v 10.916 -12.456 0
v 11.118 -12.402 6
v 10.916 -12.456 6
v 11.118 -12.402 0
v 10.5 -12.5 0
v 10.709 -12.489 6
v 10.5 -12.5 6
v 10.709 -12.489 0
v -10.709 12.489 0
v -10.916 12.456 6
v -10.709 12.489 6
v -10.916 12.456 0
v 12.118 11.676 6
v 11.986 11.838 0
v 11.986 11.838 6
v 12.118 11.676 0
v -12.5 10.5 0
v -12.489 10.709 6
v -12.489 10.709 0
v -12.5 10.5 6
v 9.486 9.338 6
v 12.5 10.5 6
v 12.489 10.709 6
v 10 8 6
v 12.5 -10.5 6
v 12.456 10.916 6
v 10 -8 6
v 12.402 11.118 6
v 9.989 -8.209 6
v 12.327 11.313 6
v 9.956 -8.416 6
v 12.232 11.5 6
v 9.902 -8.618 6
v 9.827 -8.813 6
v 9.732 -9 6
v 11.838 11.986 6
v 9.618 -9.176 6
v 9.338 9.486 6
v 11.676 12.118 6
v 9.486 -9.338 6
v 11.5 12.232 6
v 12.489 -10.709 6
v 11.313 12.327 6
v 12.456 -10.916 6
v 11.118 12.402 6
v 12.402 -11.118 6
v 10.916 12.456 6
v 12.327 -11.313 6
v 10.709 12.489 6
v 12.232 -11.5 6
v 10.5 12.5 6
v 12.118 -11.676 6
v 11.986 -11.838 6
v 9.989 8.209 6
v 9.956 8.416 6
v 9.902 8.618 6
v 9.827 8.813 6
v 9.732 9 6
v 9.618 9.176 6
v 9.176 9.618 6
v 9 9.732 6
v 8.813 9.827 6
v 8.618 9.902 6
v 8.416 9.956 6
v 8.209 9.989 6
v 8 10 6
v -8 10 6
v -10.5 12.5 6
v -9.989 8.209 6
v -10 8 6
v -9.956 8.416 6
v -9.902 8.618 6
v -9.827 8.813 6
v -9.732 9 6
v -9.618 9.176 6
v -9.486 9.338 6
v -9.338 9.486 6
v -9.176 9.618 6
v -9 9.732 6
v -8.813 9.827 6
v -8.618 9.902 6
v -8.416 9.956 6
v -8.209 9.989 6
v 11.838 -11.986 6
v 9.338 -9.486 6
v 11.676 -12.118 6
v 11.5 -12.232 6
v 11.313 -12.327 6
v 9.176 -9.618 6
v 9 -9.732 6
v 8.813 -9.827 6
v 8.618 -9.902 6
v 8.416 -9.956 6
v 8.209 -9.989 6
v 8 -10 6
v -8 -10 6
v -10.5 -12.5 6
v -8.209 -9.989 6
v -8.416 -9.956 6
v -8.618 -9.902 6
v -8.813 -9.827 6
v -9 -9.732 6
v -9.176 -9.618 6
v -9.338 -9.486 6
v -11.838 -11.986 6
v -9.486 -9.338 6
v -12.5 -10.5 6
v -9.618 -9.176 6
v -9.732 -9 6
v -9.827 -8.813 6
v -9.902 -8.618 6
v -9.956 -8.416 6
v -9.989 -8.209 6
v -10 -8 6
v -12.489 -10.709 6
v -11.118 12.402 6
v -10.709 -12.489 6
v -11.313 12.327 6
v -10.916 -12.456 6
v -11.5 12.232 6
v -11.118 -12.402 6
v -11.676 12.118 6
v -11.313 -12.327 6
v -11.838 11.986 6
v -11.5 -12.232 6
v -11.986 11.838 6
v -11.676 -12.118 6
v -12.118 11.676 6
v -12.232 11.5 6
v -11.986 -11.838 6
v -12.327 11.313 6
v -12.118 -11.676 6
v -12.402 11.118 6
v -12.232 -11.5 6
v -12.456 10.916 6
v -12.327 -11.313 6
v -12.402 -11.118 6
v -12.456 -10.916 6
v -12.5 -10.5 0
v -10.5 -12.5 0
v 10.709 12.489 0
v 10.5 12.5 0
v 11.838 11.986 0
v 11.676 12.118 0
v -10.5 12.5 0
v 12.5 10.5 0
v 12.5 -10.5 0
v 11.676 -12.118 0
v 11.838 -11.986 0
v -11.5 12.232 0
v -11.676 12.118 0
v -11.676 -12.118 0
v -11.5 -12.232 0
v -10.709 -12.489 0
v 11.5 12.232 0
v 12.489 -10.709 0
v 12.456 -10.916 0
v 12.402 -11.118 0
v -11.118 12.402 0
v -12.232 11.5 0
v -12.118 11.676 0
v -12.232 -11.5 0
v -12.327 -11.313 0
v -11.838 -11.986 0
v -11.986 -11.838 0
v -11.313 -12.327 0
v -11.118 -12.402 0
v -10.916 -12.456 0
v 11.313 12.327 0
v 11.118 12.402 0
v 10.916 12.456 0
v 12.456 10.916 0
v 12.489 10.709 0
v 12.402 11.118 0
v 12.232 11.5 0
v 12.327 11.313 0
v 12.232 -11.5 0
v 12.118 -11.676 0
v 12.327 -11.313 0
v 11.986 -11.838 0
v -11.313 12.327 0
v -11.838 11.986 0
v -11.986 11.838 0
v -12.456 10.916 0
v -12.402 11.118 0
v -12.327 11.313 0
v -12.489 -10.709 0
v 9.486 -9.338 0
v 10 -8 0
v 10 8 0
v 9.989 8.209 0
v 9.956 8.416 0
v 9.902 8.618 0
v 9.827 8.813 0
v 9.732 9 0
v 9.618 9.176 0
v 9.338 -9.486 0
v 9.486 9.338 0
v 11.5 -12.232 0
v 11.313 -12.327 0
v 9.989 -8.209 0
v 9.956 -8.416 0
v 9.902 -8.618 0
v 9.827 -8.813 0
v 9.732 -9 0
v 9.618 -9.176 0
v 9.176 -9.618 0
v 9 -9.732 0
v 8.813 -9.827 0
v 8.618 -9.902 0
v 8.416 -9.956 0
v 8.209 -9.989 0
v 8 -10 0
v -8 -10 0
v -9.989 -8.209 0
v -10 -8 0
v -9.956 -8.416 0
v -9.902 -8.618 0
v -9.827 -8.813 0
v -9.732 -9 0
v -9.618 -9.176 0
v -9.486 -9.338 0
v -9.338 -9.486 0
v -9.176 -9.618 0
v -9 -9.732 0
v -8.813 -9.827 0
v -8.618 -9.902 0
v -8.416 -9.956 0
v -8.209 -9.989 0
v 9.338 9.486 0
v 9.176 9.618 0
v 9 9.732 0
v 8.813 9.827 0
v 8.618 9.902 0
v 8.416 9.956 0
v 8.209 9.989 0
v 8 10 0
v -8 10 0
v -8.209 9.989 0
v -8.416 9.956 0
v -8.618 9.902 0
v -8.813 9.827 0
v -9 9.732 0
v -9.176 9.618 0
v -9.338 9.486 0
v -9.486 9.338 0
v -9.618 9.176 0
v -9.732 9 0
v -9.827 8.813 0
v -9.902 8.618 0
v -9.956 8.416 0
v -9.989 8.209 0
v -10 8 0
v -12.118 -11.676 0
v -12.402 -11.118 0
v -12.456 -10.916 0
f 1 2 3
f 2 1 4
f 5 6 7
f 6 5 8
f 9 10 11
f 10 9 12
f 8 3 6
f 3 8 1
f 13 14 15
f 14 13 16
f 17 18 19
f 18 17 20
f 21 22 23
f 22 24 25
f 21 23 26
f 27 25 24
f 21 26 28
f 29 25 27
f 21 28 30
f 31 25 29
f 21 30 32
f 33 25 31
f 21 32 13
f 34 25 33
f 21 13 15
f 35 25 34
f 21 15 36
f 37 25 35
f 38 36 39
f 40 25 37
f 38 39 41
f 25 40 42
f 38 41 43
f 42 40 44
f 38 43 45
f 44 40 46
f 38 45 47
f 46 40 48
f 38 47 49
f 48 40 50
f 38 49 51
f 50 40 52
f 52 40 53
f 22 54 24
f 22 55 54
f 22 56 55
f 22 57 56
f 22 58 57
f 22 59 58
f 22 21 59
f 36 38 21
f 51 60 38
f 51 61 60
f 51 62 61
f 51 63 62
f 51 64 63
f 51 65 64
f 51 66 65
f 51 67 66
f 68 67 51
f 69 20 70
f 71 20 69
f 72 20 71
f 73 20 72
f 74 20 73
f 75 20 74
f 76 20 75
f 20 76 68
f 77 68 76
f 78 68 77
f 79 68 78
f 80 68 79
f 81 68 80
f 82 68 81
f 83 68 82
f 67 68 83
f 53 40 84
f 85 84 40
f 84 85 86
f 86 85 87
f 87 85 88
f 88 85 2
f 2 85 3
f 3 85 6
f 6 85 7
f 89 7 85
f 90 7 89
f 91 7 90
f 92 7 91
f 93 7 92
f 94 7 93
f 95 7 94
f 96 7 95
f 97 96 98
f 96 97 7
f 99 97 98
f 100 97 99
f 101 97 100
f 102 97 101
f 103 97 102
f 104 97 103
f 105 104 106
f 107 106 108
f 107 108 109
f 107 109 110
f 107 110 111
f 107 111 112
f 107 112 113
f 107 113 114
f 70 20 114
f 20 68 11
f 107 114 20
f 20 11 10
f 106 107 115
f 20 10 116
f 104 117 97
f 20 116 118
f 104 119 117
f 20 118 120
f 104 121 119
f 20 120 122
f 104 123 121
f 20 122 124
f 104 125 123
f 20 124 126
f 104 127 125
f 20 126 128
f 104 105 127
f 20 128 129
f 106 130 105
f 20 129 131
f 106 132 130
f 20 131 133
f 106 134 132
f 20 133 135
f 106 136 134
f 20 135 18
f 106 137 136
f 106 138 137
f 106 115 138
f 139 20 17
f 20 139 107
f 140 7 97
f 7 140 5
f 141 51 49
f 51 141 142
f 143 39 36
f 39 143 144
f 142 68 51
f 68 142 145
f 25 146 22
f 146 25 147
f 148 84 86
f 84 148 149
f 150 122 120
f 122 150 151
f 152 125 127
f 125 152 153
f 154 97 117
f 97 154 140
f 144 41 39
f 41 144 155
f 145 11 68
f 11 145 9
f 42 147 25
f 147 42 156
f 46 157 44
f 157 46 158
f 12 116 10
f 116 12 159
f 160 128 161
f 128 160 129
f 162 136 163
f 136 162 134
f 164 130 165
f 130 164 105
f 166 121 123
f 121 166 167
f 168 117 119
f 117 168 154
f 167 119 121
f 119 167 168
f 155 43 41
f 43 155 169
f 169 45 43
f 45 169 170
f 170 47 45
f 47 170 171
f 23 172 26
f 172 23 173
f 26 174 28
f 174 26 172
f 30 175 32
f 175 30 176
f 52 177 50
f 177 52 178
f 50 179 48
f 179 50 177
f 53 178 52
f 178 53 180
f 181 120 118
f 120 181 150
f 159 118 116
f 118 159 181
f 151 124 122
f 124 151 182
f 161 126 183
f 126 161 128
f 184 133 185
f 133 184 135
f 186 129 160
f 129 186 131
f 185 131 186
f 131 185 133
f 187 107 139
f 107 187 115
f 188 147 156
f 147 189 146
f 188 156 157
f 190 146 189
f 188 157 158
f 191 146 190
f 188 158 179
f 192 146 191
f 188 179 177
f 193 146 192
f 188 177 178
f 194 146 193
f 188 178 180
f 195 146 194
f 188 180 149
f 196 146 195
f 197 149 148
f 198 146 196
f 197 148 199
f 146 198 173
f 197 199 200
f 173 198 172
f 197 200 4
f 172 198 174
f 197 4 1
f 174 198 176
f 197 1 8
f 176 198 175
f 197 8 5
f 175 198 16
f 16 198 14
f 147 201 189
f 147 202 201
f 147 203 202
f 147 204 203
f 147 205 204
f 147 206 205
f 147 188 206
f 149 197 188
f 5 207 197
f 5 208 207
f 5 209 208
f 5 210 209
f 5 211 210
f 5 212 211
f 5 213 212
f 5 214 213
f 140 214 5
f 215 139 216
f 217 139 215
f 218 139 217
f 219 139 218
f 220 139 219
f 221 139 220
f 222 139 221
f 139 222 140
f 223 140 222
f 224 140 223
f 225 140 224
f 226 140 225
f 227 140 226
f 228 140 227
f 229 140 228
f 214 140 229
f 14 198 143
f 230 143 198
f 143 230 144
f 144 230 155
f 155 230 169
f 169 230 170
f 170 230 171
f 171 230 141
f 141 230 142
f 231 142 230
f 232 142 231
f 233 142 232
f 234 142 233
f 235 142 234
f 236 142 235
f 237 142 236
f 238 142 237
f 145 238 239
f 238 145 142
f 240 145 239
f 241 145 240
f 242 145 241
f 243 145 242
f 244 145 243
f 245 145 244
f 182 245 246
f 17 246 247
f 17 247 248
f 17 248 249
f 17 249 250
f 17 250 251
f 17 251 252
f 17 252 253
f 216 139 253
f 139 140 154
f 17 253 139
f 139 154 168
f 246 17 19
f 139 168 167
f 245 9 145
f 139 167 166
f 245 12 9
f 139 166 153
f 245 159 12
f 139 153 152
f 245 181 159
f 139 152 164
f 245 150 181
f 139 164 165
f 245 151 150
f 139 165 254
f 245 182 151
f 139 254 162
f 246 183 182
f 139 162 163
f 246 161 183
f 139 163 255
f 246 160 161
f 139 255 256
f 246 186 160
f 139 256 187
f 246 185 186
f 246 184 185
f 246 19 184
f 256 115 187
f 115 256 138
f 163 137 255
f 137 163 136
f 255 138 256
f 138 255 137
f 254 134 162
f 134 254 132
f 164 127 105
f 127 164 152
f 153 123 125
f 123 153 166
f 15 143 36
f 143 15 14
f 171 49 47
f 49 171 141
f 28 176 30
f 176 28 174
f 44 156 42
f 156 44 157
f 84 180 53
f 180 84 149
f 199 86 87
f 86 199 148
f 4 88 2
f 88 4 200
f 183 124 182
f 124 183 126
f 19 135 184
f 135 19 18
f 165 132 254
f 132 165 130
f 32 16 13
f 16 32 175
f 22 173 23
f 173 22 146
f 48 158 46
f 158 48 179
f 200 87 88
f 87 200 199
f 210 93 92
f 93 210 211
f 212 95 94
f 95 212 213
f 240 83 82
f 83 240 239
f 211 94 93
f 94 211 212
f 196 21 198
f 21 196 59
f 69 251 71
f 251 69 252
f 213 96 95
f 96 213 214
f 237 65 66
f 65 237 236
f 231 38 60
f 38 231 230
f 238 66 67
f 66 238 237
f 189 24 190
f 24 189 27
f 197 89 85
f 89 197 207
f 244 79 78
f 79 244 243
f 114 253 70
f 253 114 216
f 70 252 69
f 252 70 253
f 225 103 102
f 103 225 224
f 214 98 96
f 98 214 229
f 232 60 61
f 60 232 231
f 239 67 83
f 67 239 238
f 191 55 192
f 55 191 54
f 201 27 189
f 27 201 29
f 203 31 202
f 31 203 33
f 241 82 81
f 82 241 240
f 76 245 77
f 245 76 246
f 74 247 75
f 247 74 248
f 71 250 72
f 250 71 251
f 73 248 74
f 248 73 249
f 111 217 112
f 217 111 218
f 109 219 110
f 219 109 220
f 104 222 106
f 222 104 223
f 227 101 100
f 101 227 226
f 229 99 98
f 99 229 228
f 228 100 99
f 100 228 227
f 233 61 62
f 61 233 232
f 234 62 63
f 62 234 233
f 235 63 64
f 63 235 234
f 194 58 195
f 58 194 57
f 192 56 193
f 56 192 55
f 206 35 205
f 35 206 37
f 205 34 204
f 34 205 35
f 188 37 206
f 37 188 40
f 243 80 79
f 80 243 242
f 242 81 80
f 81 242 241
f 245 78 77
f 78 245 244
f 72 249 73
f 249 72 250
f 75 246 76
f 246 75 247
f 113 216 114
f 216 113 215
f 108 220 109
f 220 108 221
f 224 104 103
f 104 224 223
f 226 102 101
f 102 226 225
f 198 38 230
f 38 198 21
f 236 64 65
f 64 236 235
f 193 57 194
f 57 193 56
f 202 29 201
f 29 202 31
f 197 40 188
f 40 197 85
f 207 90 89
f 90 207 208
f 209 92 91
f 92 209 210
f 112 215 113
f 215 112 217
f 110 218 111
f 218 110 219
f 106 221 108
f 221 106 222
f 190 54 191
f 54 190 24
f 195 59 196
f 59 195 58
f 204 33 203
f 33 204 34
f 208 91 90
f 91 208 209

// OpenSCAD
$fn = 60; // Smooth curves

// Parameters
outer_size = 25;
inner_size = 20;
height = 6;
corner_radius = 2;

// Module
module rounded_frame() {
    difference() {
        // Outer block with rounded corners
        linear_extrude(height)
            offset(r = corner_radius)
            offset(delta = -corner_radius)
            square([outer_size, outer_size], center = true);

        // Cut-through hole with rounded corners
        translate([0, 0, -0.1])  // Ensure clean subtraction from Z=0
            linear_extrude(height + 0.2)
                offset(r = corner_radius)
                offset(delta = -corner_radius)
                square([inner_size, inner_size], center = true);
    }
}

// Preview
rounded_frame();
